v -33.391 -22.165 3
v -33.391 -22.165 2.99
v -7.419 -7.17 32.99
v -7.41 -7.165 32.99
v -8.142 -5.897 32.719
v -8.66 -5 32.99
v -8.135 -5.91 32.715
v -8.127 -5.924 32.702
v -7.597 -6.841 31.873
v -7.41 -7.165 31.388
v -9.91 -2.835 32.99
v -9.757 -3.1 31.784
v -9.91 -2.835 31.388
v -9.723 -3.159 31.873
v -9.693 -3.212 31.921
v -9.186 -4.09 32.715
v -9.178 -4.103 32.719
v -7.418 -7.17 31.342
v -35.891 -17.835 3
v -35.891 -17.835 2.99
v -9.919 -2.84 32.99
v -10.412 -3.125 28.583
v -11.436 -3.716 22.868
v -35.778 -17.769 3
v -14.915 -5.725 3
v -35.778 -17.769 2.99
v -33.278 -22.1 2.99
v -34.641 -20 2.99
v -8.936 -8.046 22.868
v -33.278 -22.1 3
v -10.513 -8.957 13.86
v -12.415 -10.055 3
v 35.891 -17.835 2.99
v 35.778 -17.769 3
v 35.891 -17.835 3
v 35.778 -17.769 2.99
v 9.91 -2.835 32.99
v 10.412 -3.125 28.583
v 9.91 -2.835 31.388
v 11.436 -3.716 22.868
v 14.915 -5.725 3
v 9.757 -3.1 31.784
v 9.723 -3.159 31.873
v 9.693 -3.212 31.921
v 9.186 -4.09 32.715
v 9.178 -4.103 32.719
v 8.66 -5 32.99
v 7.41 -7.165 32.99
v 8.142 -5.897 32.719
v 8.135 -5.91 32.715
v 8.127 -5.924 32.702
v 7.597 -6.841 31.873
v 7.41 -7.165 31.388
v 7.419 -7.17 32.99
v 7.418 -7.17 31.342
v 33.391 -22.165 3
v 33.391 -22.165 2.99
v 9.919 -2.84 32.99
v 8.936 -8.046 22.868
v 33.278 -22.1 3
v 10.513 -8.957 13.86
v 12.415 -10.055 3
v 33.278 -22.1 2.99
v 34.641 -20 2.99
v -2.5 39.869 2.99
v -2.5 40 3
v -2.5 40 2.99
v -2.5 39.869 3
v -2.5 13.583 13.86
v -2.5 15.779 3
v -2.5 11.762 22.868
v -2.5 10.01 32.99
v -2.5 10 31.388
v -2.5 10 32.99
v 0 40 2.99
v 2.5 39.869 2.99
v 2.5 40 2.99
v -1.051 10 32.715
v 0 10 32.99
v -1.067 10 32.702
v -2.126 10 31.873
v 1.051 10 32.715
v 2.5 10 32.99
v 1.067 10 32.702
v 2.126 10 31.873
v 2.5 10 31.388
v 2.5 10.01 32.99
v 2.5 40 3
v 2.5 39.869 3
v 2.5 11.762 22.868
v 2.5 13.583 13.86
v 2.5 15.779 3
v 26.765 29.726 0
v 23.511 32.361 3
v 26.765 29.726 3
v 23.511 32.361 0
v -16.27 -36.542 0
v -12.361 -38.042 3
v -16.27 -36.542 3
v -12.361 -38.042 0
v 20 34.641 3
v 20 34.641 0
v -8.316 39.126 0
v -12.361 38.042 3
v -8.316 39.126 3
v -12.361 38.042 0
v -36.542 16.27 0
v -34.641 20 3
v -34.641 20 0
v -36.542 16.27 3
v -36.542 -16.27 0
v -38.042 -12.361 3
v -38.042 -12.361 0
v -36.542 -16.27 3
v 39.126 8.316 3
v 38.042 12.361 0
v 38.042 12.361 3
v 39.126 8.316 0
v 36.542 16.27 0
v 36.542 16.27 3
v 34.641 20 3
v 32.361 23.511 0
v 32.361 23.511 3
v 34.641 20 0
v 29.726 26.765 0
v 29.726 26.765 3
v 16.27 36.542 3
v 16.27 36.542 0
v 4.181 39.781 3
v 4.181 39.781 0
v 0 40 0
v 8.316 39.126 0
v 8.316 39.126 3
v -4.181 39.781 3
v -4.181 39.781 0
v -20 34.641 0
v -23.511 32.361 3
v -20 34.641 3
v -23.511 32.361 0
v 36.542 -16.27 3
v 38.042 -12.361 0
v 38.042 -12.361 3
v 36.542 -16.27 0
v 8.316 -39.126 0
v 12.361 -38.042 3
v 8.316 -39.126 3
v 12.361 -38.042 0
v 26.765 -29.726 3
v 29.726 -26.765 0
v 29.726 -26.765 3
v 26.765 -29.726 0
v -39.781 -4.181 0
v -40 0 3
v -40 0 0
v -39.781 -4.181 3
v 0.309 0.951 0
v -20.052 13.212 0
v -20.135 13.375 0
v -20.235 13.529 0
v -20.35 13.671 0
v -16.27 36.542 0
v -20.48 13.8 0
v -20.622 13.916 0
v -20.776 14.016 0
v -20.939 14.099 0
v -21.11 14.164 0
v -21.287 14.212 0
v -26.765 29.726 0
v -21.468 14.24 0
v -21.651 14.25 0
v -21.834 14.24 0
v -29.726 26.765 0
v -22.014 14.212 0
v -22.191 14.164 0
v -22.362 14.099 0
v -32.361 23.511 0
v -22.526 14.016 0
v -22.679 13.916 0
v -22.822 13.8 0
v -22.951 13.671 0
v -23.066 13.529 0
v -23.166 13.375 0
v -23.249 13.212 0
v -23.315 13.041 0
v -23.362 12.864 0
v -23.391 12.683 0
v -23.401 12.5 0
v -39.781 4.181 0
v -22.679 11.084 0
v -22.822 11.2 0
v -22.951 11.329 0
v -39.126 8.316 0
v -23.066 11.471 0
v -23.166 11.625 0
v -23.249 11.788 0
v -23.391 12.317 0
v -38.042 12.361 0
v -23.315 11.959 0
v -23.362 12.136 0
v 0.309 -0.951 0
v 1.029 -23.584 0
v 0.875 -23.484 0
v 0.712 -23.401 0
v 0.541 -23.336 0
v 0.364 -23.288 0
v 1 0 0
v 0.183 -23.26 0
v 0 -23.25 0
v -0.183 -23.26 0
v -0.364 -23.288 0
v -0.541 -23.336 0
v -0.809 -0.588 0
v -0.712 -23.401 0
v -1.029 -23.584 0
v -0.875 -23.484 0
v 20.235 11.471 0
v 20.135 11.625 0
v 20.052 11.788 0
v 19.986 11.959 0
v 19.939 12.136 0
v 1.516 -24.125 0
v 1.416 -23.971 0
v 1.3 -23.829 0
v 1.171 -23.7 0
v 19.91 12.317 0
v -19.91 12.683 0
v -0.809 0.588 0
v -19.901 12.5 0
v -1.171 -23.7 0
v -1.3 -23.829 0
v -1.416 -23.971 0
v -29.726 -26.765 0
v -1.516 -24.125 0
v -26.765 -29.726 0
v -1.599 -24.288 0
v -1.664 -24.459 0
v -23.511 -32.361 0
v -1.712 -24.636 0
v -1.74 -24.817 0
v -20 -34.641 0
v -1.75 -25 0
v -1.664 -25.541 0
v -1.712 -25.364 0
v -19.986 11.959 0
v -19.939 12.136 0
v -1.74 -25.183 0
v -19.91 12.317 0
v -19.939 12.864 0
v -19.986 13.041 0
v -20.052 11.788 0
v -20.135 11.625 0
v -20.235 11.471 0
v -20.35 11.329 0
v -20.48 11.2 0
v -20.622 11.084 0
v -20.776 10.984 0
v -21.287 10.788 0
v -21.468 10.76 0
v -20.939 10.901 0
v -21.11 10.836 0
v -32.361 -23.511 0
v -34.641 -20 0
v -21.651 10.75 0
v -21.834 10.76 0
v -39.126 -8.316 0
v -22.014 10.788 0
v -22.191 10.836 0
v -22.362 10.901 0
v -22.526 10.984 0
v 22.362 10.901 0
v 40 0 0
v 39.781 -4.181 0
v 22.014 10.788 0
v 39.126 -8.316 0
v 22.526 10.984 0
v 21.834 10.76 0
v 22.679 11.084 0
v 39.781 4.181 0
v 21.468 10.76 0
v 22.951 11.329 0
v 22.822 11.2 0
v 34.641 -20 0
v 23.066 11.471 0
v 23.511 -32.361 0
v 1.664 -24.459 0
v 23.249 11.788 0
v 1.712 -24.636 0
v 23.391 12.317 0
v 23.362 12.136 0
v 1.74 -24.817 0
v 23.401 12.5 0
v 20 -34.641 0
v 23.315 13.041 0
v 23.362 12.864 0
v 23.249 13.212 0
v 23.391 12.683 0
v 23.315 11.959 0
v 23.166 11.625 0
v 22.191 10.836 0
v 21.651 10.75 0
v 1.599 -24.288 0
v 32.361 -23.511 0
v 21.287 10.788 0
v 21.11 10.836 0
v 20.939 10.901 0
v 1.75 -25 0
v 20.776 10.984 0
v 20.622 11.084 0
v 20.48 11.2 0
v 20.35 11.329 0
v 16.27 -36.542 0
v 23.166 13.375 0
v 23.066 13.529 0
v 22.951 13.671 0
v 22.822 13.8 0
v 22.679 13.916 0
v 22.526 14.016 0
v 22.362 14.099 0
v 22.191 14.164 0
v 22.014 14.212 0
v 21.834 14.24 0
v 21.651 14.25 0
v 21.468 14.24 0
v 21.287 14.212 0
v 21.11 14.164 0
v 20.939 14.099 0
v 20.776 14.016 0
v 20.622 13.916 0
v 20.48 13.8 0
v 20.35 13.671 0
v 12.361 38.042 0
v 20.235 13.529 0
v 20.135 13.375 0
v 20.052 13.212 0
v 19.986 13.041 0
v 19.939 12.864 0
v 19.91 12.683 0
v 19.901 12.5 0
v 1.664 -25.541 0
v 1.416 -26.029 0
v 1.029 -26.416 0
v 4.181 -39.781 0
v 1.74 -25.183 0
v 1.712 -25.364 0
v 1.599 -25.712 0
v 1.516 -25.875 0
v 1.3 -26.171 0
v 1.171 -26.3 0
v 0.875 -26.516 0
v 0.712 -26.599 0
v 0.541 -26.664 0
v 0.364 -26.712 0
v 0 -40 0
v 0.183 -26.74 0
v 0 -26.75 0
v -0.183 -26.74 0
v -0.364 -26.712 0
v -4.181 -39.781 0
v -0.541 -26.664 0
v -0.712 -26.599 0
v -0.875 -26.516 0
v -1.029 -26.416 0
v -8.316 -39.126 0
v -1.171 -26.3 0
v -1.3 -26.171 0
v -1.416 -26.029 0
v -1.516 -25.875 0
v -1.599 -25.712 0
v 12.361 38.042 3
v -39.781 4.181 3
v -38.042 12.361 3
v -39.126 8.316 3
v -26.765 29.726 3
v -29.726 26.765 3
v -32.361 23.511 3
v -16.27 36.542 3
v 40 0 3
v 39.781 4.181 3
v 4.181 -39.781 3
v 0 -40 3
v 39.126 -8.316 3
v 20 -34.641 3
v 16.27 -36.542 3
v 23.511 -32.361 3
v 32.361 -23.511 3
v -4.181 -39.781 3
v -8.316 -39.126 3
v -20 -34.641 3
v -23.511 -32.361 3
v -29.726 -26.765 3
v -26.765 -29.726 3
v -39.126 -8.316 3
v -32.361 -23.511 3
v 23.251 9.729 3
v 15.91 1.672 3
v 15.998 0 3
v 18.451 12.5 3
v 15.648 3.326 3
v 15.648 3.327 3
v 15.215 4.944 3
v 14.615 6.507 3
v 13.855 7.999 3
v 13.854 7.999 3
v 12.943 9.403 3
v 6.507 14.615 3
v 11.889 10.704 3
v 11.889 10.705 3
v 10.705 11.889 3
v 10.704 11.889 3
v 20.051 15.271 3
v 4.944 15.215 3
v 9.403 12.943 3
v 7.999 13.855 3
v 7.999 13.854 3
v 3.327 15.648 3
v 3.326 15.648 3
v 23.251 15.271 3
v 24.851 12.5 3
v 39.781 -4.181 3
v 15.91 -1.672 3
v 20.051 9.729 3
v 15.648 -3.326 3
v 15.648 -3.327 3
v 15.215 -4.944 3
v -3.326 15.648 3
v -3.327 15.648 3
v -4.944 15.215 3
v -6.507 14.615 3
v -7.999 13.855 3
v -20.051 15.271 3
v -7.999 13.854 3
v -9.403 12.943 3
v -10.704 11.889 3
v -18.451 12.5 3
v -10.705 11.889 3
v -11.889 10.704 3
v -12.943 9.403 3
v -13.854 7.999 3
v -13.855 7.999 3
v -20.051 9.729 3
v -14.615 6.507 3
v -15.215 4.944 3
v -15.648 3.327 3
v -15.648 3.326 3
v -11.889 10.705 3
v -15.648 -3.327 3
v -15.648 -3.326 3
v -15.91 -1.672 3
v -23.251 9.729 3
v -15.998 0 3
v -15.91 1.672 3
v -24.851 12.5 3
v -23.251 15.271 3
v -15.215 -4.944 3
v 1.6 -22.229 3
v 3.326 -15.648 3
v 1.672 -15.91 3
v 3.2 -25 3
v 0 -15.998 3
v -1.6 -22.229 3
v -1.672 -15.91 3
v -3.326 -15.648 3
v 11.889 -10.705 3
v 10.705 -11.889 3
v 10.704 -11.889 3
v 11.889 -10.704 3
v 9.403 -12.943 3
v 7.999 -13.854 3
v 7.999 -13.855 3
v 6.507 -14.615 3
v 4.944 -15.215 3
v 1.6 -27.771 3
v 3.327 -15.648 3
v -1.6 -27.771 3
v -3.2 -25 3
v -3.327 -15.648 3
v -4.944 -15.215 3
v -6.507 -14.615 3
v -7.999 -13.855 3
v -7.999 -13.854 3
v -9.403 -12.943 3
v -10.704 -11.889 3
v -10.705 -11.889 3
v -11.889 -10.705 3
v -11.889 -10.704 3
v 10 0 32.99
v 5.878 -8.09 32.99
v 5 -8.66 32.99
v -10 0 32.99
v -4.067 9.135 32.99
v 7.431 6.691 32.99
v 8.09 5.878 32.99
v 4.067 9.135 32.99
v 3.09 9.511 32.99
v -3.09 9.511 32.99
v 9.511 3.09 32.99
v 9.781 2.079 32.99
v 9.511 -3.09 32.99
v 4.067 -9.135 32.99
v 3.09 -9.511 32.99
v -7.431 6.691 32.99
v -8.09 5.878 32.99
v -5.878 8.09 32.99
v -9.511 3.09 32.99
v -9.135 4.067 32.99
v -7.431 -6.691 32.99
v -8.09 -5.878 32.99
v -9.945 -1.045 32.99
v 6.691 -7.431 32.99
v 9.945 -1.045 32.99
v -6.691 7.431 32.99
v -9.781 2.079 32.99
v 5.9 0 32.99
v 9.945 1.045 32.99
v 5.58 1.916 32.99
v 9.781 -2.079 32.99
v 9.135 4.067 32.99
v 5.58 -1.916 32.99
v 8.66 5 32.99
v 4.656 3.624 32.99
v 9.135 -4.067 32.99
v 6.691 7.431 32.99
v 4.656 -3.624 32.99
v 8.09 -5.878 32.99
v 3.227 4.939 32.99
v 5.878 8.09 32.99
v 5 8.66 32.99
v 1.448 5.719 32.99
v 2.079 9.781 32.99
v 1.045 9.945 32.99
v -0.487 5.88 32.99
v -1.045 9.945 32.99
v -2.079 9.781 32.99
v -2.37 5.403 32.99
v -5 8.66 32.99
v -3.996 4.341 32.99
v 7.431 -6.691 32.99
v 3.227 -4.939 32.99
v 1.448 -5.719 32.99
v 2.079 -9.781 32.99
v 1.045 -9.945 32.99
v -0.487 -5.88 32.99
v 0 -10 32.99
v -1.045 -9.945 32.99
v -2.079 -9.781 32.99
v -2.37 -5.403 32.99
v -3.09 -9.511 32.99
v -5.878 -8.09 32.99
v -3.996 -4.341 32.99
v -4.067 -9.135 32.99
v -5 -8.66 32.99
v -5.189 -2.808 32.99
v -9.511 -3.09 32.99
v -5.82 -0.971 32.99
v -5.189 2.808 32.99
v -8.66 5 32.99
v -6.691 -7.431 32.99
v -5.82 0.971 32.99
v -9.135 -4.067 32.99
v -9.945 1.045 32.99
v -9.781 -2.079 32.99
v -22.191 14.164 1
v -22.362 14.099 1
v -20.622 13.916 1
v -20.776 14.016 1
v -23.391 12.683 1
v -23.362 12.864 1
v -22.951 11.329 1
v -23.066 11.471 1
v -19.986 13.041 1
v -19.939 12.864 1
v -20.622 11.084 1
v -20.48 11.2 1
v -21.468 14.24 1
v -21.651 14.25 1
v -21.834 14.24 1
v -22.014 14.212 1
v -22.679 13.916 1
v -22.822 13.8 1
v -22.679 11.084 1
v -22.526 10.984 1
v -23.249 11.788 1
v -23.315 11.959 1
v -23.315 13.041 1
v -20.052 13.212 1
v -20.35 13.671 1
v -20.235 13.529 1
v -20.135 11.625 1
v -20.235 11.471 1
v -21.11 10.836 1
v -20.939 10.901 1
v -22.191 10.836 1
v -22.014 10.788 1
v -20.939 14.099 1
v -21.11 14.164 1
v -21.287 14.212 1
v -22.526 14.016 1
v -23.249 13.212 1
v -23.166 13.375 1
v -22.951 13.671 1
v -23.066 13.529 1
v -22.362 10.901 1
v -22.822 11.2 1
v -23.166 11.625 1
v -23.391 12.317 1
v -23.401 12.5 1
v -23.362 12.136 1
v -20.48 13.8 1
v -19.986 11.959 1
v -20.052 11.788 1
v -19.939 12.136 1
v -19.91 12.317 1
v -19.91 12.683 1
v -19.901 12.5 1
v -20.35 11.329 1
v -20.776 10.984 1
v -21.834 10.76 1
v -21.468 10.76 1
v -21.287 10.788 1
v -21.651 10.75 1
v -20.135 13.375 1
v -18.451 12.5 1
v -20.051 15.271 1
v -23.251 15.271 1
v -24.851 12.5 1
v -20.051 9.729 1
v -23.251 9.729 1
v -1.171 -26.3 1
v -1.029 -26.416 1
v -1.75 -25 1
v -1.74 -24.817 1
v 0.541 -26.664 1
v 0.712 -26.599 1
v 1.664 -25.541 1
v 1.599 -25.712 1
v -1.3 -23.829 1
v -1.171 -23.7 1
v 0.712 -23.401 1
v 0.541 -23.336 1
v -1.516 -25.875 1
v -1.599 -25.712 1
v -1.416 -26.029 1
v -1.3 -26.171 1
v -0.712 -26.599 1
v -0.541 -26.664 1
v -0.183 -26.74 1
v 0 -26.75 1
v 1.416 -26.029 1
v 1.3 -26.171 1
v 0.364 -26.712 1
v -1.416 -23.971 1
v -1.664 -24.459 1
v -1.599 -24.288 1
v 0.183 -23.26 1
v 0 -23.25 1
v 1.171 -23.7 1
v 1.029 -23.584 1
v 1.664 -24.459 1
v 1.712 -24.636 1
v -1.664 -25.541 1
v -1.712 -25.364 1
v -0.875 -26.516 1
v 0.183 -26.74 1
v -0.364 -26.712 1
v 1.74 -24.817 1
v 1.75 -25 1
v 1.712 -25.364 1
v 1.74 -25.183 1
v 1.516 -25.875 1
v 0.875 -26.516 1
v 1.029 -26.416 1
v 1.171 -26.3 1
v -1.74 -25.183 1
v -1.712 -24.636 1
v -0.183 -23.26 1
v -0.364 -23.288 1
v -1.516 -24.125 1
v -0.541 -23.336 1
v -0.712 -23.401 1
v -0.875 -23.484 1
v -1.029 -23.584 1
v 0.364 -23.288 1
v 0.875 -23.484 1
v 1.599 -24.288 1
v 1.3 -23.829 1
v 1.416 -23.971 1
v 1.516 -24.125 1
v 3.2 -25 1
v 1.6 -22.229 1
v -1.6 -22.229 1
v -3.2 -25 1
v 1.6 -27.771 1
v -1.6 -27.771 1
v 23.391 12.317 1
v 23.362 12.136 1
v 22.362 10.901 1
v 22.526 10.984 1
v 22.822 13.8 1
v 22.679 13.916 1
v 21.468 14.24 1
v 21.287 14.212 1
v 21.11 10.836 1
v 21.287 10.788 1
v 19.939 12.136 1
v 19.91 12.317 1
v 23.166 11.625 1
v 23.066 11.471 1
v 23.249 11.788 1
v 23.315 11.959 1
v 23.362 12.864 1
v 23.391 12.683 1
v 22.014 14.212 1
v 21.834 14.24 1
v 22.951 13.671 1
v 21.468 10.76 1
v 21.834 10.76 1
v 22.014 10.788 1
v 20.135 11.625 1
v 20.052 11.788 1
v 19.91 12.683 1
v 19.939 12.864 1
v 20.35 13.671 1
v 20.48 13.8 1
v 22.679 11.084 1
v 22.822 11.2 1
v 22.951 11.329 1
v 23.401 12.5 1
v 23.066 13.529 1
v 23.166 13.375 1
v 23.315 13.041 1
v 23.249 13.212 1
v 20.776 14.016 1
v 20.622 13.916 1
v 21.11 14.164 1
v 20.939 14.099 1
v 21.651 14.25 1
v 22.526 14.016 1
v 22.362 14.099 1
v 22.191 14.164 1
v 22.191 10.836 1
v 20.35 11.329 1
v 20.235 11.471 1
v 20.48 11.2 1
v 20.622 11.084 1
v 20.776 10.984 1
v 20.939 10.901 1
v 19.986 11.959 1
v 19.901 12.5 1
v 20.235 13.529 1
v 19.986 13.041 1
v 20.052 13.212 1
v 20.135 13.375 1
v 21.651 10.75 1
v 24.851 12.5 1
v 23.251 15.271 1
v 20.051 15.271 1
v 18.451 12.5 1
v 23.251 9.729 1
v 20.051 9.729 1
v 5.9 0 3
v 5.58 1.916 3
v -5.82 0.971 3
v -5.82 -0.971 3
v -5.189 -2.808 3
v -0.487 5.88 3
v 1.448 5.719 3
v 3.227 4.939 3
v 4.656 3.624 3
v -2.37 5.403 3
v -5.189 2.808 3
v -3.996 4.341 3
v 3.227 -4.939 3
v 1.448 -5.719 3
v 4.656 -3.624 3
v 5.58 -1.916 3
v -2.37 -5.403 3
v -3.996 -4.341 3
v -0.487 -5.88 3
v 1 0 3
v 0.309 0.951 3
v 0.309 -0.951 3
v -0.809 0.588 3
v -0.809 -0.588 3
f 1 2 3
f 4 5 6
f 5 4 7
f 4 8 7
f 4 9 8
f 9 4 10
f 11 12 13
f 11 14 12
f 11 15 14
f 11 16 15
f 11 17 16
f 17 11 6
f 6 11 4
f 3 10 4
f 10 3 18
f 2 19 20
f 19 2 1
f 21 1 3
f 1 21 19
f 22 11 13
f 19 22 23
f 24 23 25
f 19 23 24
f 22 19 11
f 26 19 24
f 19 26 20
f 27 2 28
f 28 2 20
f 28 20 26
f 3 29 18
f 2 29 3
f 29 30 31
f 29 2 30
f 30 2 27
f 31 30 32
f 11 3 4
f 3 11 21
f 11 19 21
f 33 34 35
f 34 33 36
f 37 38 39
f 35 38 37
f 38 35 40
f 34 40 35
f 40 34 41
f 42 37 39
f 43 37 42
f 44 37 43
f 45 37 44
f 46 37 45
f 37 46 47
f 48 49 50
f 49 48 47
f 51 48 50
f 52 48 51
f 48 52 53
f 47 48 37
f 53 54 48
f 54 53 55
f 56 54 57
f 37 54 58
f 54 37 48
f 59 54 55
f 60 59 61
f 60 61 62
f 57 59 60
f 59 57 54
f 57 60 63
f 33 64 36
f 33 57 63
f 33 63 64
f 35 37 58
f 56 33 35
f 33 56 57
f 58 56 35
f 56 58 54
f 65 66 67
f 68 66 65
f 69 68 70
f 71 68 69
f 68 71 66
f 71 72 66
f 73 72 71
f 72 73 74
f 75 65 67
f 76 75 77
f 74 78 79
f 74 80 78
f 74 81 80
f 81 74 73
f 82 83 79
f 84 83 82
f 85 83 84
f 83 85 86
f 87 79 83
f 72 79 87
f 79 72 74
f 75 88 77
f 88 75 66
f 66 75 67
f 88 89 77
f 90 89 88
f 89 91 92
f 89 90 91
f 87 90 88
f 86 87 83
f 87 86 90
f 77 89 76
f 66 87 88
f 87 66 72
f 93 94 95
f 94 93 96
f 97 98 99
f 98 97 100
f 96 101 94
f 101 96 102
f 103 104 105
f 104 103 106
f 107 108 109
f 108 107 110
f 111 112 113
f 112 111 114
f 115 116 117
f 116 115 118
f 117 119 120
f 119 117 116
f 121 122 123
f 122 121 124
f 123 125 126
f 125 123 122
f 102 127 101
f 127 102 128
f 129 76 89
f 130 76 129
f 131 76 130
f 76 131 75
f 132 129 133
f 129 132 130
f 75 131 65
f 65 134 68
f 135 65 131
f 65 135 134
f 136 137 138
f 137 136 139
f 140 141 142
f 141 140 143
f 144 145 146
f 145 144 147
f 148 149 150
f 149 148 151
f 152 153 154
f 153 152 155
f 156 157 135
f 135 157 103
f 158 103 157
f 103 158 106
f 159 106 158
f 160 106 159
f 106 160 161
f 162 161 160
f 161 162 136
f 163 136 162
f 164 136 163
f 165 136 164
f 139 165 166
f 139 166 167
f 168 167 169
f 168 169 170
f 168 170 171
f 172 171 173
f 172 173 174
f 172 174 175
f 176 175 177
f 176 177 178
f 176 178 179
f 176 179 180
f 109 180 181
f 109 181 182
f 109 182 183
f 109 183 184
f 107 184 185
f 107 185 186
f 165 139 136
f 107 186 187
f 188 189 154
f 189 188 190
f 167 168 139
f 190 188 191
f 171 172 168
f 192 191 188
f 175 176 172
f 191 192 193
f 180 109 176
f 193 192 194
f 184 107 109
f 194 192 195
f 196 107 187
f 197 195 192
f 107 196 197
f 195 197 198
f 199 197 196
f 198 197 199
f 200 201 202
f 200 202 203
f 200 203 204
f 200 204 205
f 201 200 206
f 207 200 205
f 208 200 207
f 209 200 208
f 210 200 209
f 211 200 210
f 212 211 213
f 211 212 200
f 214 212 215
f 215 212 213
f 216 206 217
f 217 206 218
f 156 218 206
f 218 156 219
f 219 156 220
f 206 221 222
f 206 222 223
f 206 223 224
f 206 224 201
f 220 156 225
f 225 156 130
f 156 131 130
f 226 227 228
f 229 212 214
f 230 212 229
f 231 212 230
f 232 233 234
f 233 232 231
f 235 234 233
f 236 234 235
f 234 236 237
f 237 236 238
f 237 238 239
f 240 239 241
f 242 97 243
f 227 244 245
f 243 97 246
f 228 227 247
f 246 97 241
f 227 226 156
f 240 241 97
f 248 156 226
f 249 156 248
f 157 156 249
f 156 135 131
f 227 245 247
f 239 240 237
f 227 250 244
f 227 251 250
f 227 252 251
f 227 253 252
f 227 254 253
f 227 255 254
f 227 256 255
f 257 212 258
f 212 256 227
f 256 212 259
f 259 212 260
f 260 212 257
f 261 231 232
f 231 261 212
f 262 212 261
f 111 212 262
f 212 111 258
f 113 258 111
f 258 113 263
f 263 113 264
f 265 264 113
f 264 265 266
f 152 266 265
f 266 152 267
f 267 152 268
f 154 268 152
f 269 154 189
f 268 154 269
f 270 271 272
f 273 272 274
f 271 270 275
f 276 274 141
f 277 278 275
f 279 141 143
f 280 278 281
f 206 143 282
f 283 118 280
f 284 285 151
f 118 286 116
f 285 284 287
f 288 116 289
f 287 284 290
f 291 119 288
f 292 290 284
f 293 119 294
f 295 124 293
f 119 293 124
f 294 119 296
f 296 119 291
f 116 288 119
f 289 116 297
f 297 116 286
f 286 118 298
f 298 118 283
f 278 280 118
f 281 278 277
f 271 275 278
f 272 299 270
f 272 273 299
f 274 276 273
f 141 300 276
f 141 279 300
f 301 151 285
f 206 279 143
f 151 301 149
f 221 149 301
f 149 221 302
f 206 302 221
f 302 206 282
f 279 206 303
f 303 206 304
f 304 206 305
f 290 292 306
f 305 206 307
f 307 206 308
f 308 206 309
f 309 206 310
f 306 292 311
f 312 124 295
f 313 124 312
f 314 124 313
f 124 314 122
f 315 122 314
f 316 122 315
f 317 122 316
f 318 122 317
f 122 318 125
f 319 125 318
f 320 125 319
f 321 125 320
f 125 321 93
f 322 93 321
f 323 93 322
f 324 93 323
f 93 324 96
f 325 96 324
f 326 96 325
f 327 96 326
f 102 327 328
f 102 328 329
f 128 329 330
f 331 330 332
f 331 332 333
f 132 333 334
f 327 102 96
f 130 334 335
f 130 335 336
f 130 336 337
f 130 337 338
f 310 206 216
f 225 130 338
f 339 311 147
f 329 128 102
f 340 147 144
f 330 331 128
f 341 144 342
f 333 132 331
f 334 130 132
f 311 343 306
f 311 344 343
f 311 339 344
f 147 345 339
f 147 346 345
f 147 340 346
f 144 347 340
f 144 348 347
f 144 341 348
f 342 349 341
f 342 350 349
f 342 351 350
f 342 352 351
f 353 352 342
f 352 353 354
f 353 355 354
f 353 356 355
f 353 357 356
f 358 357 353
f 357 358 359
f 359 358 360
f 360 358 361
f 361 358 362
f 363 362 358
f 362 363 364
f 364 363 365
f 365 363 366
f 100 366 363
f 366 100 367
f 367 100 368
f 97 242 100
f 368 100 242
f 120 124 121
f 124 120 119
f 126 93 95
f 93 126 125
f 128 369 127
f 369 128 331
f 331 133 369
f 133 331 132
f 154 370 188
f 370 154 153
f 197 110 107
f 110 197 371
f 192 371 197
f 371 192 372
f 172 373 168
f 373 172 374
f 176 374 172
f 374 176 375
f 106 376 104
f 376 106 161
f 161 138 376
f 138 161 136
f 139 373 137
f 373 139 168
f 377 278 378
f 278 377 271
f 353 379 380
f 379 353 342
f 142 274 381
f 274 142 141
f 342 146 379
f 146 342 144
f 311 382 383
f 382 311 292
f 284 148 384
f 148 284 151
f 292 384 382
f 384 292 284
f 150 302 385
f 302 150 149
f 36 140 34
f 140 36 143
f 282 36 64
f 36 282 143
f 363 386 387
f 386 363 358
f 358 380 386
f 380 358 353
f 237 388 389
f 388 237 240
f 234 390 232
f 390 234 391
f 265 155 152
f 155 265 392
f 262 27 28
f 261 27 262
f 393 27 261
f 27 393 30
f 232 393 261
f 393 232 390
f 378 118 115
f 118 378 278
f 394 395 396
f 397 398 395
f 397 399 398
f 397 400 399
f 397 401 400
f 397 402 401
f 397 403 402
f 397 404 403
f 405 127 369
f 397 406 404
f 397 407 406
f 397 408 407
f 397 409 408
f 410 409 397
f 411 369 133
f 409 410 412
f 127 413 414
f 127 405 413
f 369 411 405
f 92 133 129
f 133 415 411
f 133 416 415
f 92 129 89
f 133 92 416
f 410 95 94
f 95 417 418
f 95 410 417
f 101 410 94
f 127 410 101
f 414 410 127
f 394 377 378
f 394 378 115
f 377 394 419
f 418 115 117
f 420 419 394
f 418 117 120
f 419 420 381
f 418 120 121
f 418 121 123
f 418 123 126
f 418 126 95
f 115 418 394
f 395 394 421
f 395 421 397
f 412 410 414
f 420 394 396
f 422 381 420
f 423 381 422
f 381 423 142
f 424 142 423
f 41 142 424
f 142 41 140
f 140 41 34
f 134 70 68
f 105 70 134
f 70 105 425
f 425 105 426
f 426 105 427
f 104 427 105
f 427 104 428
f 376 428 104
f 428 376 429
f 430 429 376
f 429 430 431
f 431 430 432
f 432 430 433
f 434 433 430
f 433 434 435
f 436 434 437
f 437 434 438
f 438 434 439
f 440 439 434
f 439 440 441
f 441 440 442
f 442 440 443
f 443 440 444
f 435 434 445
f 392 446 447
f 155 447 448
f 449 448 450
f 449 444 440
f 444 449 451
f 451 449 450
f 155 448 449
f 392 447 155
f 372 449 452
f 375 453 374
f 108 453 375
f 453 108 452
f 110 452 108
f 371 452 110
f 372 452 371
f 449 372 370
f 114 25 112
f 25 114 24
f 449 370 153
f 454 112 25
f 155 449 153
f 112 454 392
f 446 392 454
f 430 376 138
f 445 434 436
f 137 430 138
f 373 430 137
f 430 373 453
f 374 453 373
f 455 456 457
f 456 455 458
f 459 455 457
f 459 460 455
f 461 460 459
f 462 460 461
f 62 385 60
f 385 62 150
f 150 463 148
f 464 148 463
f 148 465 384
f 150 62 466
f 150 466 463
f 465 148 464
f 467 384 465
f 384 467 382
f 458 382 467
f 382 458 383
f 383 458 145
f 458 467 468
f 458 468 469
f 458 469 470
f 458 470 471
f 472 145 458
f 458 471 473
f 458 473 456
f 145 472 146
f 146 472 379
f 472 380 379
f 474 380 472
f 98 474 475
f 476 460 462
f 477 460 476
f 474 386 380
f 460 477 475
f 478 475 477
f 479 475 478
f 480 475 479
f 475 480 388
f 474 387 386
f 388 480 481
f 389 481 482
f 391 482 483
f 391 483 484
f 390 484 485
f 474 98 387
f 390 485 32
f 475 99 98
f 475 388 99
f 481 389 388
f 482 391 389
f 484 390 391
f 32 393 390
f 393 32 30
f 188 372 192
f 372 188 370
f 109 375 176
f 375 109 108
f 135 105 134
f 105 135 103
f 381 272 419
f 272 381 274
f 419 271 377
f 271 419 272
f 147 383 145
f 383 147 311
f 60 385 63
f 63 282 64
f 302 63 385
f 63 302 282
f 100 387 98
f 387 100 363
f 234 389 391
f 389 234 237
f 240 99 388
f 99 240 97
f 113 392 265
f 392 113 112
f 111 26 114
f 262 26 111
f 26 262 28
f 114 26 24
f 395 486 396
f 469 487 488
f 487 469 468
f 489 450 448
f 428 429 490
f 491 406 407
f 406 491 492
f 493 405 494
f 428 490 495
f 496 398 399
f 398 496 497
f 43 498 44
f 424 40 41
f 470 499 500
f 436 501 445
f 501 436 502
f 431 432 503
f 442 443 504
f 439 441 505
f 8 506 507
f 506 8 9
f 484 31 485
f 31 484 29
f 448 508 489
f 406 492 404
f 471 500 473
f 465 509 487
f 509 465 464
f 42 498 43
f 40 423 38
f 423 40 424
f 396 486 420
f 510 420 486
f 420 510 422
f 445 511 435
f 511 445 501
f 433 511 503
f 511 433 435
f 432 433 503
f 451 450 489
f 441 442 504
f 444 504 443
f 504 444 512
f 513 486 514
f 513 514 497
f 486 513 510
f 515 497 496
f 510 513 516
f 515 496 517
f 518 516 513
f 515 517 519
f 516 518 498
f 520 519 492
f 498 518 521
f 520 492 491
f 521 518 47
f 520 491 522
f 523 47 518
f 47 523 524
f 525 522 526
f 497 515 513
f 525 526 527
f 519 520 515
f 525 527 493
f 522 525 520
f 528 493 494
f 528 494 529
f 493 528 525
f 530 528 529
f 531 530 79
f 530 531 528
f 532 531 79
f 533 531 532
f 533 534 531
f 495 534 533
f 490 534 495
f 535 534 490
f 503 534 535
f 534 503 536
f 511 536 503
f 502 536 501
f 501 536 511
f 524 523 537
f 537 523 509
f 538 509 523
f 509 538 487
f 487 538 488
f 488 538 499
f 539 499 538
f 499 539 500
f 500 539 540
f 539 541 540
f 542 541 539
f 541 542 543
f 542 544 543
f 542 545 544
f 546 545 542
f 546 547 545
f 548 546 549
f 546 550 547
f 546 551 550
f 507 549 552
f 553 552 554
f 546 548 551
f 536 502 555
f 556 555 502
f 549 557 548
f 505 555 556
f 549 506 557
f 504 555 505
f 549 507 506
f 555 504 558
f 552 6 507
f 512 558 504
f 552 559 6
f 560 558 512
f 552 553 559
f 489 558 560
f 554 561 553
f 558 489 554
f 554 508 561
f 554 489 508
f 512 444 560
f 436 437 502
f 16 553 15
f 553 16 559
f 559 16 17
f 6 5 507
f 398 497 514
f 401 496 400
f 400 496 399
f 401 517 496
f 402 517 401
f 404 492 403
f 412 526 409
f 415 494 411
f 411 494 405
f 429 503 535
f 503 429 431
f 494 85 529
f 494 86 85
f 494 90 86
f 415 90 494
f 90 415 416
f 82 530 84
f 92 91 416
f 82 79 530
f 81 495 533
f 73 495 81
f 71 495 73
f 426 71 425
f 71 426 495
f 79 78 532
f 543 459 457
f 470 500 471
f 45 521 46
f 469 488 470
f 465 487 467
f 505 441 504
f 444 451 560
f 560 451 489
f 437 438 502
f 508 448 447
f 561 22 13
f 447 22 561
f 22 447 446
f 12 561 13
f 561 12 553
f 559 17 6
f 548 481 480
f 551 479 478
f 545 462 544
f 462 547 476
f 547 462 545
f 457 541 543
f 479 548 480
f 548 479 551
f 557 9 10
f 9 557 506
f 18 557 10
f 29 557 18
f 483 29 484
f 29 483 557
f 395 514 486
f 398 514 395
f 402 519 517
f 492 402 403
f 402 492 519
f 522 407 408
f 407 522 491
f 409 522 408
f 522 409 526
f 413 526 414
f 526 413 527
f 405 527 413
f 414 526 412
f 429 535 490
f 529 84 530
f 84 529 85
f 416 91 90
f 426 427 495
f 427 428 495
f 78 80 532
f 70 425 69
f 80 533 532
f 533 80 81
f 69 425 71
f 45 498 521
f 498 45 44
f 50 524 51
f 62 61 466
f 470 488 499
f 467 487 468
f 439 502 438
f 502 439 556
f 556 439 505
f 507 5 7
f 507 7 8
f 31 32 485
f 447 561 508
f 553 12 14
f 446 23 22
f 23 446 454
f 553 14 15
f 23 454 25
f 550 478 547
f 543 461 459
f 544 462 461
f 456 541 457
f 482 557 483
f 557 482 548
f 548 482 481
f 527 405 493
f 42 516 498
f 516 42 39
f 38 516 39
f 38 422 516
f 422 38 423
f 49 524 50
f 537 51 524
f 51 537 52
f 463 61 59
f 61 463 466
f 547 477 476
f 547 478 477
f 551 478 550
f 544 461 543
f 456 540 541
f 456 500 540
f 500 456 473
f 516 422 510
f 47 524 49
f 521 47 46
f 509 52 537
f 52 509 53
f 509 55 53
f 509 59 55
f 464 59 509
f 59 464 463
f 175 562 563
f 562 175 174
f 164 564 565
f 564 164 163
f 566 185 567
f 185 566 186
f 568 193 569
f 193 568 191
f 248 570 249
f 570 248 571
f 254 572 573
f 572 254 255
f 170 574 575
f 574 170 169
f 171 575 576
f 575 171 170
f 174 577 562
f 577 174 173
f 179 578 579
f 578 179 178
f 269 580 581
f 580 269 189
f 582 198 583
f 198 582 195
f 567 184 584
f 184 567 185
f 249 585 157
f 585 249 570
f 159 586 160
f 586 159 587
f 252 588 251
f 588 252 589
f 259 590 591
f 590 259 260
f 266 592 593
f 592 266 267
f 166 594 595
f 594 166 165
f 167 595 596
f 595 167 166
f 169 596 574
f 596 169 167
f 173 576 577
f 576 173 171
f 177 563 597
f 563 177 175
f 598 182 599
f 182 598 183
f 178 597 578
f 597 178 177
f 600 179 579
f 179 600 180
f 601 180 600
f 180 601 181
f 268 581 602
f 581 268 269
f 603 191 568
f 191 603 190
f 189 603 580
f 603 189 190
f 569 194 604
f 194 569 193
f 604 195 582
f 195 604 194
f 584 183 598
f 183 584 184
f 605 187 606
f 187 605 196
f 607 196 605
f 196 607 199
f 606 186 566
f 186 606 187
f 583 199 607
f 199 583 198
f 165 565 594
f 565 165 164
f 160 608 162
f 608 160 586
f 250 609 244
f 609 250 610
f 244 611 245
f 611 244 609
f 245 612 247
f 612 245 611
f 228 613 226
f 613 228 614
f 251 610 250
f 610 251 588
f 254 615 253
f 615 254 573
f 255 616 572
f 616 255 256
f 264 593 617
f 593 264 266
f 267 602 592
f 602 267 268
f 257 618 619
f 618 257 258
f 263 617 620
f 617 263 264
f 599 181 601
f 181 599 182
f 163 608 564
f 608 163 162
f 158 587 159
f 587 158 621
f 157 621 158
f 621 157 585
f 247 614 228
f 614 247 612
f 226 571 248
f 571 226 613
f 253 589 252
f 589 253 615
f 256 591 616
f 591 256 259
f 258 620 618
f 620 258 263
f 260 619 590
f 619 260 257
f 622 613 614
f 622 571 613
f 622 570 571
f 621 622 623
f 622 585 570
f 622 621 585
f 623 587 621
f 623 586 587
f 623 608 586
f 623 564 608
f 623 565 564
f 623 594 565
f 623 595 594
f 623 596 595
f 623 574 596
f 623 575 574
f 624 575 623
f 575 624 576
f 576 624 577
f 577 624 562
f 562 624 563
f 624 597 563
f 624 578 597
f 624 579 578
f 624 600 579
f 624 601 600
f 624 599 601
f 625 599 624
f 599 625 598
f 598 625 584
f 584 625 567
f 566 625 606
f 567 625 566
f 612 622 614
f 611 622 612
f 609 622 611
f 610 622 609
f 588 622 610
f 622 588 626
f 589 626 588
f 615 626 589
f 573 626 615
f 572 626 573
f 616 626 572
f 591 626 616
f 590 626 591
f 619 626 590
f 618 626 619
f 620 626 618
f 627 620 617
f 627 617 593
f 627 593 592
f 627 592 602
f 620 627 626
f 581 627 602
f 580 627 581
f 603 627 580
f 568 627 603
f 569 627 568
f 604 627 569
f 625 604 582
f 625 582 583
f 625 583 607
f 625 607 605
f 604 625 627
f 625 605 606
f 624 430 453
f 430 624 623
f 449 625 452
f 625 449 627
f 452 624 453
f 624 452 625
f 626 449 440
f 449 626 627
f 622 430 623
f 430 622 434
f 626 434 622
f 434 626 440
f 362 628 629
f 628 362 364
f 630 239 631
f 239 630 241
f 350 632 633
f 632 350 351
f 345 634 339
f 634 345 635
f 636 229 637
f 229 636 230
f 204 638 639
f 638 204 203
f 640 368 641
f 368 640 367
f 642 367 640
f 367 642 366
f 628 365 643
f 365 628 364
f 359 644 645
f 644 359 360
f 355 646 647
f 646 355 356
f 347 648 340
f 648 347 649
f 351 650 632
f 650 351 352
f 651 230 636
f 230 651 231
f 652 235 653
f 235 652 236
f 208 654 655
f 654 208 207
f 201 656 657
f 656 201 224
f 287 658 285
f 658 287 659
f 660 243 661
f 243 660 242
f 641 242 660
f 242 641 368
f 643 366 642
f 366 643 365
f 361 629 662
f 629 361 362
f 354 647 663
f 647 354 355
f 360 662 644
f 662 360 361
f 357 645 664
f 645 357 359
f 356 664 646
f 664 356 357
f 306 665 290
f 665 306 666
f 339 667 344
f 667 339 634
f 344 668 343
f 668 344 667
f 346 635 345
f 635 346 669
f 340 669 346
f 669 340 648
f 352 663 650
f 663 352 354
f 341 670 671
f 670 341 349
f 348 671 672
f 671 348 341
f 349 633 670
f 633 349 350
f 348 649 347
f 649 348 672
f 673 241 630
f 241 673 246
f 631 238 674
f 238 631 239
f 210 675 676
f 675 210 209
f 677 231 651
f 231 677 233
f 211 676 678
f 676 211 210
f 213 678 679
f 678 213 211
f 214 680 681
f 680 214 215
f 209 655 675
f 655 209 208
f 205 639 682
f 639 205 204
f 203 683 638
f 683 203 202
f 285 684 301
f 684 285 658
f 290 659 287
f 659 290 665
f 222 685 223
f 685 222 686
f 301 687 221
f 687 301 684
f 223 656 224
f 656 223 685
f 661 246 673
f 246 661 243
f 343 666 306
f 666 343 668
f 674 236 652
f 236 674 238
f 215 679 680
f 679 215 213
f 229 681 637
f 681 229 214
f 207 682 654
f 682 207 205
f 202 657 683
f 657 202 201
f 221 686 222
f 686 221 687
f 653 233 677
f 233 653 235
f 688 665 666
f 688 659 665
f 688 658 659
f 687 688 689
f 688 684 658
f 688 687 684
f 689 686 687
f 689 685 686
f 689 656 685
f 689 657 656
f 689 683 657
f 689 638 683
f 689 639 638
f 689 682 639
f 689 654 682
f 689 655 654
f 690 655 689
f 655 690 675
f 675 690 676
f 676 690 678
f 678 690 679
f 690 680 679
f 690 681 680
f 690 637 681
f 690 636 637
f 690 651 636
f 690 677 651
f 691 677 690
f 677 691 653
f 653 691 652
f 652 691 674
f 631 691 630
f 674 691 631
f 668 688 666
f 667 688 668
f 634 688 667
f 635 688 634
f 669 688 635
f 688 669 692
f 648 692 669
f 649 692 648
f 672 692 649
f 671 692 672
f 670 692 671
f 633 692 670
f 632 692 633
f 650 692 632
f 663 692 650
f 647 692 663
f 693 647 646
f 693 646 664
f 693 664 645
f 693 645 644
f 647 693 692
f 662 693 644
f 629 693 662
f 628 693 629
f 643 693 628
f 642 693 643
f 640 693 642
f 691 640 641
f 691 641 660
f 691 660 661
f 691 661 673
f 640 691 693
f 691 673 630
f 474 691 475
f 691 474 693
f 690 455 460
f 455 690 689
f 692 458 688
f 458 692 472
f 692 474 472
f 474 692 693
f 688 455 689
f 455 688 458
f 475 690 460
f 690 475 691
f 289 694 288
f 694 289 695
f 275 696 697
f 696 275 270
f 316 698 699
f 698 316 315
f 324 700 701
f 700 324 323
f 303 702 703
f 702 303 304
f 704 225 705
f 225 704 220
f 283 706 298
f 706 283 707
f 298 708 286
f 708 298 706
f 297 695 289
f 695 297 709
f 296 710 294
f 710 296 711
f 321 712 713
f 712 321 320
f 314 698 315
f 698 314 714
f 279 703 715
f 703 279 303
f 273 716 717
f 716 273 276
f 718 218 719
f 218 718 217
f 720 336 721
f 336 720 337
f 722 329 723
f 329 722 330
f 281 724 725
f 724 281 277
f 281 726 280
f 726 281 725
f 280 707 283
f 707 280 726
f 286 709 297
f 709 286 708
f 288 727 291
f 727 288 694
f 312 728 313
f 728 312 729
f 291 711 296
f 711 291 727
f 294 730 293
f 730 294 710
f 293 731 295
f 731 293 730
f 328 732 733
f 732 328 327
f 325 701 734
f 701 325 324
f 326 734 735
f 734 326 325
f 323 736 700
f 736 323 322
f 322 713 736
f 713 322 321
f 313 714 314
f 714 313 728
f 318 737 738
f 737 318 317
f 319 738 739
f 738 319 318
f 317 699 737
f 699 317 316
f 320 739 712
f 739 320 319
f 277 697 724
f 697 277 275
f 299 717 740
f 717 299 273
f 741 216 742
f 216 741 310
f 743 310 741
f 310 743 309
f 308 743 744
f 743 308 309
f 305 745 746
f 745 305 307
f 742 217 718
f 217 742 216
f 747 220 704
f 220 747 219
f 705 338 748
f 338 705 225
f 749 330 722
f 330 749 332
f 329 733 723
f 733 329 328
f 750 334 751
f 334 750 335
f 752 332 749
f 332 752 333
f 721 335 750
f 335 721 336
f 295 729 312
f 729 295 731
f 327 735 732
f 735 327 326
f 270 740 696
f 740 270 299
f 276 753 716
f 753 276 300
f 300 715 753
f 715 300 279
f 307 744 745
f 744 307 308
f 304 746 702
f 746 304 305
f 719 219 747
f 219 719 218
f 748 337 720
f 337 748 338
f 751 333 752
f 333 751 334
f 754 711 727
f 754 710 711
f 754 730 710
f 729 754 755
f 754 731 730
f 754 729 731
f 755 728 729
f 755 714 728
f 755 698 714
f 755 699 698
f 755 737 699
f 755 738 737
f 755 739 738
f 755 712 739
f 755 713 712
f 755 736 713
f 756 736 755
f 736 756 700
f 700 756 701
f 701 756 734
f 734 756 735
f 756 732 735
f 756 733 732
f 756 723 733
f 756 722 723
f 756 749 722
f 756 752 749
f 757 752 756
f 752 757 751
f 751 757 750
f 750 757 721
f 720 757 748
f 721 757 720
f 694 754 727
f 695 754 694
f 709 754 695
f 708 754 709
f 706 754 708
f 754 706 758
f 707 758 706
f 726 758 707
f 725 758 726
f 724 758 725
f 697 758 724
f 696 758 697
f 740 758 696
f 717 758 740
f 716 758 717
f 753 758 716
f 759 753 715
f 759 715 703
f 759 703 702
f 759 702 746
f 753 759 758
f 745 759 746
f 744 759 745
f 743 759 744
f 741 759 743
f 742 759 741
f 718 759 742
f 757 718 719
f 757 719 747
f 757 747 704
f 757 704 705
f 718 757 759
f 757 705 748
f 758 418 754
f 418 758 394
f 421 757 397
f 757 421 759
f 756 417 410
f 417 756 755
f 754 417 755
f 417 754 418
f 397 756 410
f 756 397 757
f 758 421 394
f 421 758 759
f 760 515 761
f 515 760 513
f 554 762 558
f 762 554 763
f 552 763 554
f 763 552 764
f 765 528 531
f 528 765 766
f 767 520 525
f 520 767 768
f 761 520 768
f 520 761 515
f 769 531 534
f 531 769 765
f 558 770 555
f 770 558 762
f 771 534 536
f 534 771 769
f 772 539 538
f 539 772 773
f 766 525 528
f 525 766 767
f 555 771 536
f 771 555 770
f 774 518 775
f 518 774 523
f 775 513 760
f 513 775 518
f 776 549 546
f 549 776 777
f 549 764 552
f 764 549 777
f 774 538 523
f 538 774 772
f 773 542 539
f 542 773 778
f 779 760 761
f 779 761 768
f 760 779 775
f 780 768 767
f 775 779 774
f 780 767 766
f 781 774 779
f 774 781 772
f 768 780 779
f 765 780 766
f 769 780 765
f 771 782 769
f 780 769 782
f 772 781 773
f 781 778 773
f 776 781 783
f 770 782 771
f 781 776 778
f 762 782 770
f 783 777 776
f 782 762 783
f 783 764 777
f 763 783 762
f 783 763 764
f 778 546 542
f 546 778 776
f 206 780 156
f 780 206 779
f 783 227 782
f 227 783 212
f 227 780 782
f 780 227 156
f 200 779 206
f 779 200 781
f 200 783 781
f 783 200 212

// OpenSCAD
difference() {
    union() {
        cylinder(r=80/2,h=3,$fn=60);
        translate([0,0,2.99])cylinder(r2=20/2,r1=16,h=30,$fn=60);

        for(i=[120,240,360]) {
            rotate([0,0,i]) {
                translate([-2.5,0,2.99]) {
                    hull() {
                        translate([0,10,0])cube([5,30,0.01]);
                        translate([0,10,0])cube([5,0.01,30]);
                    }
                }
            }
        }
    }


    translate([0,0,3]) {
        #cylinder(r=11.8/2,h=50);
    }
    translate([0,0,-1])#cylinder(r=2/2,h=100);
    for(j=[60,180,300]) {
        rotate([0,0,j]) {
            translate([0,25,-1]) {
                #cylinder(r=3.5/2,h=100,$fn=60);
            }
            translate([0,25,1]) {
                #cylinder(r=6.4/2,h=100,$fn=6);
            }
        }
    }

}
